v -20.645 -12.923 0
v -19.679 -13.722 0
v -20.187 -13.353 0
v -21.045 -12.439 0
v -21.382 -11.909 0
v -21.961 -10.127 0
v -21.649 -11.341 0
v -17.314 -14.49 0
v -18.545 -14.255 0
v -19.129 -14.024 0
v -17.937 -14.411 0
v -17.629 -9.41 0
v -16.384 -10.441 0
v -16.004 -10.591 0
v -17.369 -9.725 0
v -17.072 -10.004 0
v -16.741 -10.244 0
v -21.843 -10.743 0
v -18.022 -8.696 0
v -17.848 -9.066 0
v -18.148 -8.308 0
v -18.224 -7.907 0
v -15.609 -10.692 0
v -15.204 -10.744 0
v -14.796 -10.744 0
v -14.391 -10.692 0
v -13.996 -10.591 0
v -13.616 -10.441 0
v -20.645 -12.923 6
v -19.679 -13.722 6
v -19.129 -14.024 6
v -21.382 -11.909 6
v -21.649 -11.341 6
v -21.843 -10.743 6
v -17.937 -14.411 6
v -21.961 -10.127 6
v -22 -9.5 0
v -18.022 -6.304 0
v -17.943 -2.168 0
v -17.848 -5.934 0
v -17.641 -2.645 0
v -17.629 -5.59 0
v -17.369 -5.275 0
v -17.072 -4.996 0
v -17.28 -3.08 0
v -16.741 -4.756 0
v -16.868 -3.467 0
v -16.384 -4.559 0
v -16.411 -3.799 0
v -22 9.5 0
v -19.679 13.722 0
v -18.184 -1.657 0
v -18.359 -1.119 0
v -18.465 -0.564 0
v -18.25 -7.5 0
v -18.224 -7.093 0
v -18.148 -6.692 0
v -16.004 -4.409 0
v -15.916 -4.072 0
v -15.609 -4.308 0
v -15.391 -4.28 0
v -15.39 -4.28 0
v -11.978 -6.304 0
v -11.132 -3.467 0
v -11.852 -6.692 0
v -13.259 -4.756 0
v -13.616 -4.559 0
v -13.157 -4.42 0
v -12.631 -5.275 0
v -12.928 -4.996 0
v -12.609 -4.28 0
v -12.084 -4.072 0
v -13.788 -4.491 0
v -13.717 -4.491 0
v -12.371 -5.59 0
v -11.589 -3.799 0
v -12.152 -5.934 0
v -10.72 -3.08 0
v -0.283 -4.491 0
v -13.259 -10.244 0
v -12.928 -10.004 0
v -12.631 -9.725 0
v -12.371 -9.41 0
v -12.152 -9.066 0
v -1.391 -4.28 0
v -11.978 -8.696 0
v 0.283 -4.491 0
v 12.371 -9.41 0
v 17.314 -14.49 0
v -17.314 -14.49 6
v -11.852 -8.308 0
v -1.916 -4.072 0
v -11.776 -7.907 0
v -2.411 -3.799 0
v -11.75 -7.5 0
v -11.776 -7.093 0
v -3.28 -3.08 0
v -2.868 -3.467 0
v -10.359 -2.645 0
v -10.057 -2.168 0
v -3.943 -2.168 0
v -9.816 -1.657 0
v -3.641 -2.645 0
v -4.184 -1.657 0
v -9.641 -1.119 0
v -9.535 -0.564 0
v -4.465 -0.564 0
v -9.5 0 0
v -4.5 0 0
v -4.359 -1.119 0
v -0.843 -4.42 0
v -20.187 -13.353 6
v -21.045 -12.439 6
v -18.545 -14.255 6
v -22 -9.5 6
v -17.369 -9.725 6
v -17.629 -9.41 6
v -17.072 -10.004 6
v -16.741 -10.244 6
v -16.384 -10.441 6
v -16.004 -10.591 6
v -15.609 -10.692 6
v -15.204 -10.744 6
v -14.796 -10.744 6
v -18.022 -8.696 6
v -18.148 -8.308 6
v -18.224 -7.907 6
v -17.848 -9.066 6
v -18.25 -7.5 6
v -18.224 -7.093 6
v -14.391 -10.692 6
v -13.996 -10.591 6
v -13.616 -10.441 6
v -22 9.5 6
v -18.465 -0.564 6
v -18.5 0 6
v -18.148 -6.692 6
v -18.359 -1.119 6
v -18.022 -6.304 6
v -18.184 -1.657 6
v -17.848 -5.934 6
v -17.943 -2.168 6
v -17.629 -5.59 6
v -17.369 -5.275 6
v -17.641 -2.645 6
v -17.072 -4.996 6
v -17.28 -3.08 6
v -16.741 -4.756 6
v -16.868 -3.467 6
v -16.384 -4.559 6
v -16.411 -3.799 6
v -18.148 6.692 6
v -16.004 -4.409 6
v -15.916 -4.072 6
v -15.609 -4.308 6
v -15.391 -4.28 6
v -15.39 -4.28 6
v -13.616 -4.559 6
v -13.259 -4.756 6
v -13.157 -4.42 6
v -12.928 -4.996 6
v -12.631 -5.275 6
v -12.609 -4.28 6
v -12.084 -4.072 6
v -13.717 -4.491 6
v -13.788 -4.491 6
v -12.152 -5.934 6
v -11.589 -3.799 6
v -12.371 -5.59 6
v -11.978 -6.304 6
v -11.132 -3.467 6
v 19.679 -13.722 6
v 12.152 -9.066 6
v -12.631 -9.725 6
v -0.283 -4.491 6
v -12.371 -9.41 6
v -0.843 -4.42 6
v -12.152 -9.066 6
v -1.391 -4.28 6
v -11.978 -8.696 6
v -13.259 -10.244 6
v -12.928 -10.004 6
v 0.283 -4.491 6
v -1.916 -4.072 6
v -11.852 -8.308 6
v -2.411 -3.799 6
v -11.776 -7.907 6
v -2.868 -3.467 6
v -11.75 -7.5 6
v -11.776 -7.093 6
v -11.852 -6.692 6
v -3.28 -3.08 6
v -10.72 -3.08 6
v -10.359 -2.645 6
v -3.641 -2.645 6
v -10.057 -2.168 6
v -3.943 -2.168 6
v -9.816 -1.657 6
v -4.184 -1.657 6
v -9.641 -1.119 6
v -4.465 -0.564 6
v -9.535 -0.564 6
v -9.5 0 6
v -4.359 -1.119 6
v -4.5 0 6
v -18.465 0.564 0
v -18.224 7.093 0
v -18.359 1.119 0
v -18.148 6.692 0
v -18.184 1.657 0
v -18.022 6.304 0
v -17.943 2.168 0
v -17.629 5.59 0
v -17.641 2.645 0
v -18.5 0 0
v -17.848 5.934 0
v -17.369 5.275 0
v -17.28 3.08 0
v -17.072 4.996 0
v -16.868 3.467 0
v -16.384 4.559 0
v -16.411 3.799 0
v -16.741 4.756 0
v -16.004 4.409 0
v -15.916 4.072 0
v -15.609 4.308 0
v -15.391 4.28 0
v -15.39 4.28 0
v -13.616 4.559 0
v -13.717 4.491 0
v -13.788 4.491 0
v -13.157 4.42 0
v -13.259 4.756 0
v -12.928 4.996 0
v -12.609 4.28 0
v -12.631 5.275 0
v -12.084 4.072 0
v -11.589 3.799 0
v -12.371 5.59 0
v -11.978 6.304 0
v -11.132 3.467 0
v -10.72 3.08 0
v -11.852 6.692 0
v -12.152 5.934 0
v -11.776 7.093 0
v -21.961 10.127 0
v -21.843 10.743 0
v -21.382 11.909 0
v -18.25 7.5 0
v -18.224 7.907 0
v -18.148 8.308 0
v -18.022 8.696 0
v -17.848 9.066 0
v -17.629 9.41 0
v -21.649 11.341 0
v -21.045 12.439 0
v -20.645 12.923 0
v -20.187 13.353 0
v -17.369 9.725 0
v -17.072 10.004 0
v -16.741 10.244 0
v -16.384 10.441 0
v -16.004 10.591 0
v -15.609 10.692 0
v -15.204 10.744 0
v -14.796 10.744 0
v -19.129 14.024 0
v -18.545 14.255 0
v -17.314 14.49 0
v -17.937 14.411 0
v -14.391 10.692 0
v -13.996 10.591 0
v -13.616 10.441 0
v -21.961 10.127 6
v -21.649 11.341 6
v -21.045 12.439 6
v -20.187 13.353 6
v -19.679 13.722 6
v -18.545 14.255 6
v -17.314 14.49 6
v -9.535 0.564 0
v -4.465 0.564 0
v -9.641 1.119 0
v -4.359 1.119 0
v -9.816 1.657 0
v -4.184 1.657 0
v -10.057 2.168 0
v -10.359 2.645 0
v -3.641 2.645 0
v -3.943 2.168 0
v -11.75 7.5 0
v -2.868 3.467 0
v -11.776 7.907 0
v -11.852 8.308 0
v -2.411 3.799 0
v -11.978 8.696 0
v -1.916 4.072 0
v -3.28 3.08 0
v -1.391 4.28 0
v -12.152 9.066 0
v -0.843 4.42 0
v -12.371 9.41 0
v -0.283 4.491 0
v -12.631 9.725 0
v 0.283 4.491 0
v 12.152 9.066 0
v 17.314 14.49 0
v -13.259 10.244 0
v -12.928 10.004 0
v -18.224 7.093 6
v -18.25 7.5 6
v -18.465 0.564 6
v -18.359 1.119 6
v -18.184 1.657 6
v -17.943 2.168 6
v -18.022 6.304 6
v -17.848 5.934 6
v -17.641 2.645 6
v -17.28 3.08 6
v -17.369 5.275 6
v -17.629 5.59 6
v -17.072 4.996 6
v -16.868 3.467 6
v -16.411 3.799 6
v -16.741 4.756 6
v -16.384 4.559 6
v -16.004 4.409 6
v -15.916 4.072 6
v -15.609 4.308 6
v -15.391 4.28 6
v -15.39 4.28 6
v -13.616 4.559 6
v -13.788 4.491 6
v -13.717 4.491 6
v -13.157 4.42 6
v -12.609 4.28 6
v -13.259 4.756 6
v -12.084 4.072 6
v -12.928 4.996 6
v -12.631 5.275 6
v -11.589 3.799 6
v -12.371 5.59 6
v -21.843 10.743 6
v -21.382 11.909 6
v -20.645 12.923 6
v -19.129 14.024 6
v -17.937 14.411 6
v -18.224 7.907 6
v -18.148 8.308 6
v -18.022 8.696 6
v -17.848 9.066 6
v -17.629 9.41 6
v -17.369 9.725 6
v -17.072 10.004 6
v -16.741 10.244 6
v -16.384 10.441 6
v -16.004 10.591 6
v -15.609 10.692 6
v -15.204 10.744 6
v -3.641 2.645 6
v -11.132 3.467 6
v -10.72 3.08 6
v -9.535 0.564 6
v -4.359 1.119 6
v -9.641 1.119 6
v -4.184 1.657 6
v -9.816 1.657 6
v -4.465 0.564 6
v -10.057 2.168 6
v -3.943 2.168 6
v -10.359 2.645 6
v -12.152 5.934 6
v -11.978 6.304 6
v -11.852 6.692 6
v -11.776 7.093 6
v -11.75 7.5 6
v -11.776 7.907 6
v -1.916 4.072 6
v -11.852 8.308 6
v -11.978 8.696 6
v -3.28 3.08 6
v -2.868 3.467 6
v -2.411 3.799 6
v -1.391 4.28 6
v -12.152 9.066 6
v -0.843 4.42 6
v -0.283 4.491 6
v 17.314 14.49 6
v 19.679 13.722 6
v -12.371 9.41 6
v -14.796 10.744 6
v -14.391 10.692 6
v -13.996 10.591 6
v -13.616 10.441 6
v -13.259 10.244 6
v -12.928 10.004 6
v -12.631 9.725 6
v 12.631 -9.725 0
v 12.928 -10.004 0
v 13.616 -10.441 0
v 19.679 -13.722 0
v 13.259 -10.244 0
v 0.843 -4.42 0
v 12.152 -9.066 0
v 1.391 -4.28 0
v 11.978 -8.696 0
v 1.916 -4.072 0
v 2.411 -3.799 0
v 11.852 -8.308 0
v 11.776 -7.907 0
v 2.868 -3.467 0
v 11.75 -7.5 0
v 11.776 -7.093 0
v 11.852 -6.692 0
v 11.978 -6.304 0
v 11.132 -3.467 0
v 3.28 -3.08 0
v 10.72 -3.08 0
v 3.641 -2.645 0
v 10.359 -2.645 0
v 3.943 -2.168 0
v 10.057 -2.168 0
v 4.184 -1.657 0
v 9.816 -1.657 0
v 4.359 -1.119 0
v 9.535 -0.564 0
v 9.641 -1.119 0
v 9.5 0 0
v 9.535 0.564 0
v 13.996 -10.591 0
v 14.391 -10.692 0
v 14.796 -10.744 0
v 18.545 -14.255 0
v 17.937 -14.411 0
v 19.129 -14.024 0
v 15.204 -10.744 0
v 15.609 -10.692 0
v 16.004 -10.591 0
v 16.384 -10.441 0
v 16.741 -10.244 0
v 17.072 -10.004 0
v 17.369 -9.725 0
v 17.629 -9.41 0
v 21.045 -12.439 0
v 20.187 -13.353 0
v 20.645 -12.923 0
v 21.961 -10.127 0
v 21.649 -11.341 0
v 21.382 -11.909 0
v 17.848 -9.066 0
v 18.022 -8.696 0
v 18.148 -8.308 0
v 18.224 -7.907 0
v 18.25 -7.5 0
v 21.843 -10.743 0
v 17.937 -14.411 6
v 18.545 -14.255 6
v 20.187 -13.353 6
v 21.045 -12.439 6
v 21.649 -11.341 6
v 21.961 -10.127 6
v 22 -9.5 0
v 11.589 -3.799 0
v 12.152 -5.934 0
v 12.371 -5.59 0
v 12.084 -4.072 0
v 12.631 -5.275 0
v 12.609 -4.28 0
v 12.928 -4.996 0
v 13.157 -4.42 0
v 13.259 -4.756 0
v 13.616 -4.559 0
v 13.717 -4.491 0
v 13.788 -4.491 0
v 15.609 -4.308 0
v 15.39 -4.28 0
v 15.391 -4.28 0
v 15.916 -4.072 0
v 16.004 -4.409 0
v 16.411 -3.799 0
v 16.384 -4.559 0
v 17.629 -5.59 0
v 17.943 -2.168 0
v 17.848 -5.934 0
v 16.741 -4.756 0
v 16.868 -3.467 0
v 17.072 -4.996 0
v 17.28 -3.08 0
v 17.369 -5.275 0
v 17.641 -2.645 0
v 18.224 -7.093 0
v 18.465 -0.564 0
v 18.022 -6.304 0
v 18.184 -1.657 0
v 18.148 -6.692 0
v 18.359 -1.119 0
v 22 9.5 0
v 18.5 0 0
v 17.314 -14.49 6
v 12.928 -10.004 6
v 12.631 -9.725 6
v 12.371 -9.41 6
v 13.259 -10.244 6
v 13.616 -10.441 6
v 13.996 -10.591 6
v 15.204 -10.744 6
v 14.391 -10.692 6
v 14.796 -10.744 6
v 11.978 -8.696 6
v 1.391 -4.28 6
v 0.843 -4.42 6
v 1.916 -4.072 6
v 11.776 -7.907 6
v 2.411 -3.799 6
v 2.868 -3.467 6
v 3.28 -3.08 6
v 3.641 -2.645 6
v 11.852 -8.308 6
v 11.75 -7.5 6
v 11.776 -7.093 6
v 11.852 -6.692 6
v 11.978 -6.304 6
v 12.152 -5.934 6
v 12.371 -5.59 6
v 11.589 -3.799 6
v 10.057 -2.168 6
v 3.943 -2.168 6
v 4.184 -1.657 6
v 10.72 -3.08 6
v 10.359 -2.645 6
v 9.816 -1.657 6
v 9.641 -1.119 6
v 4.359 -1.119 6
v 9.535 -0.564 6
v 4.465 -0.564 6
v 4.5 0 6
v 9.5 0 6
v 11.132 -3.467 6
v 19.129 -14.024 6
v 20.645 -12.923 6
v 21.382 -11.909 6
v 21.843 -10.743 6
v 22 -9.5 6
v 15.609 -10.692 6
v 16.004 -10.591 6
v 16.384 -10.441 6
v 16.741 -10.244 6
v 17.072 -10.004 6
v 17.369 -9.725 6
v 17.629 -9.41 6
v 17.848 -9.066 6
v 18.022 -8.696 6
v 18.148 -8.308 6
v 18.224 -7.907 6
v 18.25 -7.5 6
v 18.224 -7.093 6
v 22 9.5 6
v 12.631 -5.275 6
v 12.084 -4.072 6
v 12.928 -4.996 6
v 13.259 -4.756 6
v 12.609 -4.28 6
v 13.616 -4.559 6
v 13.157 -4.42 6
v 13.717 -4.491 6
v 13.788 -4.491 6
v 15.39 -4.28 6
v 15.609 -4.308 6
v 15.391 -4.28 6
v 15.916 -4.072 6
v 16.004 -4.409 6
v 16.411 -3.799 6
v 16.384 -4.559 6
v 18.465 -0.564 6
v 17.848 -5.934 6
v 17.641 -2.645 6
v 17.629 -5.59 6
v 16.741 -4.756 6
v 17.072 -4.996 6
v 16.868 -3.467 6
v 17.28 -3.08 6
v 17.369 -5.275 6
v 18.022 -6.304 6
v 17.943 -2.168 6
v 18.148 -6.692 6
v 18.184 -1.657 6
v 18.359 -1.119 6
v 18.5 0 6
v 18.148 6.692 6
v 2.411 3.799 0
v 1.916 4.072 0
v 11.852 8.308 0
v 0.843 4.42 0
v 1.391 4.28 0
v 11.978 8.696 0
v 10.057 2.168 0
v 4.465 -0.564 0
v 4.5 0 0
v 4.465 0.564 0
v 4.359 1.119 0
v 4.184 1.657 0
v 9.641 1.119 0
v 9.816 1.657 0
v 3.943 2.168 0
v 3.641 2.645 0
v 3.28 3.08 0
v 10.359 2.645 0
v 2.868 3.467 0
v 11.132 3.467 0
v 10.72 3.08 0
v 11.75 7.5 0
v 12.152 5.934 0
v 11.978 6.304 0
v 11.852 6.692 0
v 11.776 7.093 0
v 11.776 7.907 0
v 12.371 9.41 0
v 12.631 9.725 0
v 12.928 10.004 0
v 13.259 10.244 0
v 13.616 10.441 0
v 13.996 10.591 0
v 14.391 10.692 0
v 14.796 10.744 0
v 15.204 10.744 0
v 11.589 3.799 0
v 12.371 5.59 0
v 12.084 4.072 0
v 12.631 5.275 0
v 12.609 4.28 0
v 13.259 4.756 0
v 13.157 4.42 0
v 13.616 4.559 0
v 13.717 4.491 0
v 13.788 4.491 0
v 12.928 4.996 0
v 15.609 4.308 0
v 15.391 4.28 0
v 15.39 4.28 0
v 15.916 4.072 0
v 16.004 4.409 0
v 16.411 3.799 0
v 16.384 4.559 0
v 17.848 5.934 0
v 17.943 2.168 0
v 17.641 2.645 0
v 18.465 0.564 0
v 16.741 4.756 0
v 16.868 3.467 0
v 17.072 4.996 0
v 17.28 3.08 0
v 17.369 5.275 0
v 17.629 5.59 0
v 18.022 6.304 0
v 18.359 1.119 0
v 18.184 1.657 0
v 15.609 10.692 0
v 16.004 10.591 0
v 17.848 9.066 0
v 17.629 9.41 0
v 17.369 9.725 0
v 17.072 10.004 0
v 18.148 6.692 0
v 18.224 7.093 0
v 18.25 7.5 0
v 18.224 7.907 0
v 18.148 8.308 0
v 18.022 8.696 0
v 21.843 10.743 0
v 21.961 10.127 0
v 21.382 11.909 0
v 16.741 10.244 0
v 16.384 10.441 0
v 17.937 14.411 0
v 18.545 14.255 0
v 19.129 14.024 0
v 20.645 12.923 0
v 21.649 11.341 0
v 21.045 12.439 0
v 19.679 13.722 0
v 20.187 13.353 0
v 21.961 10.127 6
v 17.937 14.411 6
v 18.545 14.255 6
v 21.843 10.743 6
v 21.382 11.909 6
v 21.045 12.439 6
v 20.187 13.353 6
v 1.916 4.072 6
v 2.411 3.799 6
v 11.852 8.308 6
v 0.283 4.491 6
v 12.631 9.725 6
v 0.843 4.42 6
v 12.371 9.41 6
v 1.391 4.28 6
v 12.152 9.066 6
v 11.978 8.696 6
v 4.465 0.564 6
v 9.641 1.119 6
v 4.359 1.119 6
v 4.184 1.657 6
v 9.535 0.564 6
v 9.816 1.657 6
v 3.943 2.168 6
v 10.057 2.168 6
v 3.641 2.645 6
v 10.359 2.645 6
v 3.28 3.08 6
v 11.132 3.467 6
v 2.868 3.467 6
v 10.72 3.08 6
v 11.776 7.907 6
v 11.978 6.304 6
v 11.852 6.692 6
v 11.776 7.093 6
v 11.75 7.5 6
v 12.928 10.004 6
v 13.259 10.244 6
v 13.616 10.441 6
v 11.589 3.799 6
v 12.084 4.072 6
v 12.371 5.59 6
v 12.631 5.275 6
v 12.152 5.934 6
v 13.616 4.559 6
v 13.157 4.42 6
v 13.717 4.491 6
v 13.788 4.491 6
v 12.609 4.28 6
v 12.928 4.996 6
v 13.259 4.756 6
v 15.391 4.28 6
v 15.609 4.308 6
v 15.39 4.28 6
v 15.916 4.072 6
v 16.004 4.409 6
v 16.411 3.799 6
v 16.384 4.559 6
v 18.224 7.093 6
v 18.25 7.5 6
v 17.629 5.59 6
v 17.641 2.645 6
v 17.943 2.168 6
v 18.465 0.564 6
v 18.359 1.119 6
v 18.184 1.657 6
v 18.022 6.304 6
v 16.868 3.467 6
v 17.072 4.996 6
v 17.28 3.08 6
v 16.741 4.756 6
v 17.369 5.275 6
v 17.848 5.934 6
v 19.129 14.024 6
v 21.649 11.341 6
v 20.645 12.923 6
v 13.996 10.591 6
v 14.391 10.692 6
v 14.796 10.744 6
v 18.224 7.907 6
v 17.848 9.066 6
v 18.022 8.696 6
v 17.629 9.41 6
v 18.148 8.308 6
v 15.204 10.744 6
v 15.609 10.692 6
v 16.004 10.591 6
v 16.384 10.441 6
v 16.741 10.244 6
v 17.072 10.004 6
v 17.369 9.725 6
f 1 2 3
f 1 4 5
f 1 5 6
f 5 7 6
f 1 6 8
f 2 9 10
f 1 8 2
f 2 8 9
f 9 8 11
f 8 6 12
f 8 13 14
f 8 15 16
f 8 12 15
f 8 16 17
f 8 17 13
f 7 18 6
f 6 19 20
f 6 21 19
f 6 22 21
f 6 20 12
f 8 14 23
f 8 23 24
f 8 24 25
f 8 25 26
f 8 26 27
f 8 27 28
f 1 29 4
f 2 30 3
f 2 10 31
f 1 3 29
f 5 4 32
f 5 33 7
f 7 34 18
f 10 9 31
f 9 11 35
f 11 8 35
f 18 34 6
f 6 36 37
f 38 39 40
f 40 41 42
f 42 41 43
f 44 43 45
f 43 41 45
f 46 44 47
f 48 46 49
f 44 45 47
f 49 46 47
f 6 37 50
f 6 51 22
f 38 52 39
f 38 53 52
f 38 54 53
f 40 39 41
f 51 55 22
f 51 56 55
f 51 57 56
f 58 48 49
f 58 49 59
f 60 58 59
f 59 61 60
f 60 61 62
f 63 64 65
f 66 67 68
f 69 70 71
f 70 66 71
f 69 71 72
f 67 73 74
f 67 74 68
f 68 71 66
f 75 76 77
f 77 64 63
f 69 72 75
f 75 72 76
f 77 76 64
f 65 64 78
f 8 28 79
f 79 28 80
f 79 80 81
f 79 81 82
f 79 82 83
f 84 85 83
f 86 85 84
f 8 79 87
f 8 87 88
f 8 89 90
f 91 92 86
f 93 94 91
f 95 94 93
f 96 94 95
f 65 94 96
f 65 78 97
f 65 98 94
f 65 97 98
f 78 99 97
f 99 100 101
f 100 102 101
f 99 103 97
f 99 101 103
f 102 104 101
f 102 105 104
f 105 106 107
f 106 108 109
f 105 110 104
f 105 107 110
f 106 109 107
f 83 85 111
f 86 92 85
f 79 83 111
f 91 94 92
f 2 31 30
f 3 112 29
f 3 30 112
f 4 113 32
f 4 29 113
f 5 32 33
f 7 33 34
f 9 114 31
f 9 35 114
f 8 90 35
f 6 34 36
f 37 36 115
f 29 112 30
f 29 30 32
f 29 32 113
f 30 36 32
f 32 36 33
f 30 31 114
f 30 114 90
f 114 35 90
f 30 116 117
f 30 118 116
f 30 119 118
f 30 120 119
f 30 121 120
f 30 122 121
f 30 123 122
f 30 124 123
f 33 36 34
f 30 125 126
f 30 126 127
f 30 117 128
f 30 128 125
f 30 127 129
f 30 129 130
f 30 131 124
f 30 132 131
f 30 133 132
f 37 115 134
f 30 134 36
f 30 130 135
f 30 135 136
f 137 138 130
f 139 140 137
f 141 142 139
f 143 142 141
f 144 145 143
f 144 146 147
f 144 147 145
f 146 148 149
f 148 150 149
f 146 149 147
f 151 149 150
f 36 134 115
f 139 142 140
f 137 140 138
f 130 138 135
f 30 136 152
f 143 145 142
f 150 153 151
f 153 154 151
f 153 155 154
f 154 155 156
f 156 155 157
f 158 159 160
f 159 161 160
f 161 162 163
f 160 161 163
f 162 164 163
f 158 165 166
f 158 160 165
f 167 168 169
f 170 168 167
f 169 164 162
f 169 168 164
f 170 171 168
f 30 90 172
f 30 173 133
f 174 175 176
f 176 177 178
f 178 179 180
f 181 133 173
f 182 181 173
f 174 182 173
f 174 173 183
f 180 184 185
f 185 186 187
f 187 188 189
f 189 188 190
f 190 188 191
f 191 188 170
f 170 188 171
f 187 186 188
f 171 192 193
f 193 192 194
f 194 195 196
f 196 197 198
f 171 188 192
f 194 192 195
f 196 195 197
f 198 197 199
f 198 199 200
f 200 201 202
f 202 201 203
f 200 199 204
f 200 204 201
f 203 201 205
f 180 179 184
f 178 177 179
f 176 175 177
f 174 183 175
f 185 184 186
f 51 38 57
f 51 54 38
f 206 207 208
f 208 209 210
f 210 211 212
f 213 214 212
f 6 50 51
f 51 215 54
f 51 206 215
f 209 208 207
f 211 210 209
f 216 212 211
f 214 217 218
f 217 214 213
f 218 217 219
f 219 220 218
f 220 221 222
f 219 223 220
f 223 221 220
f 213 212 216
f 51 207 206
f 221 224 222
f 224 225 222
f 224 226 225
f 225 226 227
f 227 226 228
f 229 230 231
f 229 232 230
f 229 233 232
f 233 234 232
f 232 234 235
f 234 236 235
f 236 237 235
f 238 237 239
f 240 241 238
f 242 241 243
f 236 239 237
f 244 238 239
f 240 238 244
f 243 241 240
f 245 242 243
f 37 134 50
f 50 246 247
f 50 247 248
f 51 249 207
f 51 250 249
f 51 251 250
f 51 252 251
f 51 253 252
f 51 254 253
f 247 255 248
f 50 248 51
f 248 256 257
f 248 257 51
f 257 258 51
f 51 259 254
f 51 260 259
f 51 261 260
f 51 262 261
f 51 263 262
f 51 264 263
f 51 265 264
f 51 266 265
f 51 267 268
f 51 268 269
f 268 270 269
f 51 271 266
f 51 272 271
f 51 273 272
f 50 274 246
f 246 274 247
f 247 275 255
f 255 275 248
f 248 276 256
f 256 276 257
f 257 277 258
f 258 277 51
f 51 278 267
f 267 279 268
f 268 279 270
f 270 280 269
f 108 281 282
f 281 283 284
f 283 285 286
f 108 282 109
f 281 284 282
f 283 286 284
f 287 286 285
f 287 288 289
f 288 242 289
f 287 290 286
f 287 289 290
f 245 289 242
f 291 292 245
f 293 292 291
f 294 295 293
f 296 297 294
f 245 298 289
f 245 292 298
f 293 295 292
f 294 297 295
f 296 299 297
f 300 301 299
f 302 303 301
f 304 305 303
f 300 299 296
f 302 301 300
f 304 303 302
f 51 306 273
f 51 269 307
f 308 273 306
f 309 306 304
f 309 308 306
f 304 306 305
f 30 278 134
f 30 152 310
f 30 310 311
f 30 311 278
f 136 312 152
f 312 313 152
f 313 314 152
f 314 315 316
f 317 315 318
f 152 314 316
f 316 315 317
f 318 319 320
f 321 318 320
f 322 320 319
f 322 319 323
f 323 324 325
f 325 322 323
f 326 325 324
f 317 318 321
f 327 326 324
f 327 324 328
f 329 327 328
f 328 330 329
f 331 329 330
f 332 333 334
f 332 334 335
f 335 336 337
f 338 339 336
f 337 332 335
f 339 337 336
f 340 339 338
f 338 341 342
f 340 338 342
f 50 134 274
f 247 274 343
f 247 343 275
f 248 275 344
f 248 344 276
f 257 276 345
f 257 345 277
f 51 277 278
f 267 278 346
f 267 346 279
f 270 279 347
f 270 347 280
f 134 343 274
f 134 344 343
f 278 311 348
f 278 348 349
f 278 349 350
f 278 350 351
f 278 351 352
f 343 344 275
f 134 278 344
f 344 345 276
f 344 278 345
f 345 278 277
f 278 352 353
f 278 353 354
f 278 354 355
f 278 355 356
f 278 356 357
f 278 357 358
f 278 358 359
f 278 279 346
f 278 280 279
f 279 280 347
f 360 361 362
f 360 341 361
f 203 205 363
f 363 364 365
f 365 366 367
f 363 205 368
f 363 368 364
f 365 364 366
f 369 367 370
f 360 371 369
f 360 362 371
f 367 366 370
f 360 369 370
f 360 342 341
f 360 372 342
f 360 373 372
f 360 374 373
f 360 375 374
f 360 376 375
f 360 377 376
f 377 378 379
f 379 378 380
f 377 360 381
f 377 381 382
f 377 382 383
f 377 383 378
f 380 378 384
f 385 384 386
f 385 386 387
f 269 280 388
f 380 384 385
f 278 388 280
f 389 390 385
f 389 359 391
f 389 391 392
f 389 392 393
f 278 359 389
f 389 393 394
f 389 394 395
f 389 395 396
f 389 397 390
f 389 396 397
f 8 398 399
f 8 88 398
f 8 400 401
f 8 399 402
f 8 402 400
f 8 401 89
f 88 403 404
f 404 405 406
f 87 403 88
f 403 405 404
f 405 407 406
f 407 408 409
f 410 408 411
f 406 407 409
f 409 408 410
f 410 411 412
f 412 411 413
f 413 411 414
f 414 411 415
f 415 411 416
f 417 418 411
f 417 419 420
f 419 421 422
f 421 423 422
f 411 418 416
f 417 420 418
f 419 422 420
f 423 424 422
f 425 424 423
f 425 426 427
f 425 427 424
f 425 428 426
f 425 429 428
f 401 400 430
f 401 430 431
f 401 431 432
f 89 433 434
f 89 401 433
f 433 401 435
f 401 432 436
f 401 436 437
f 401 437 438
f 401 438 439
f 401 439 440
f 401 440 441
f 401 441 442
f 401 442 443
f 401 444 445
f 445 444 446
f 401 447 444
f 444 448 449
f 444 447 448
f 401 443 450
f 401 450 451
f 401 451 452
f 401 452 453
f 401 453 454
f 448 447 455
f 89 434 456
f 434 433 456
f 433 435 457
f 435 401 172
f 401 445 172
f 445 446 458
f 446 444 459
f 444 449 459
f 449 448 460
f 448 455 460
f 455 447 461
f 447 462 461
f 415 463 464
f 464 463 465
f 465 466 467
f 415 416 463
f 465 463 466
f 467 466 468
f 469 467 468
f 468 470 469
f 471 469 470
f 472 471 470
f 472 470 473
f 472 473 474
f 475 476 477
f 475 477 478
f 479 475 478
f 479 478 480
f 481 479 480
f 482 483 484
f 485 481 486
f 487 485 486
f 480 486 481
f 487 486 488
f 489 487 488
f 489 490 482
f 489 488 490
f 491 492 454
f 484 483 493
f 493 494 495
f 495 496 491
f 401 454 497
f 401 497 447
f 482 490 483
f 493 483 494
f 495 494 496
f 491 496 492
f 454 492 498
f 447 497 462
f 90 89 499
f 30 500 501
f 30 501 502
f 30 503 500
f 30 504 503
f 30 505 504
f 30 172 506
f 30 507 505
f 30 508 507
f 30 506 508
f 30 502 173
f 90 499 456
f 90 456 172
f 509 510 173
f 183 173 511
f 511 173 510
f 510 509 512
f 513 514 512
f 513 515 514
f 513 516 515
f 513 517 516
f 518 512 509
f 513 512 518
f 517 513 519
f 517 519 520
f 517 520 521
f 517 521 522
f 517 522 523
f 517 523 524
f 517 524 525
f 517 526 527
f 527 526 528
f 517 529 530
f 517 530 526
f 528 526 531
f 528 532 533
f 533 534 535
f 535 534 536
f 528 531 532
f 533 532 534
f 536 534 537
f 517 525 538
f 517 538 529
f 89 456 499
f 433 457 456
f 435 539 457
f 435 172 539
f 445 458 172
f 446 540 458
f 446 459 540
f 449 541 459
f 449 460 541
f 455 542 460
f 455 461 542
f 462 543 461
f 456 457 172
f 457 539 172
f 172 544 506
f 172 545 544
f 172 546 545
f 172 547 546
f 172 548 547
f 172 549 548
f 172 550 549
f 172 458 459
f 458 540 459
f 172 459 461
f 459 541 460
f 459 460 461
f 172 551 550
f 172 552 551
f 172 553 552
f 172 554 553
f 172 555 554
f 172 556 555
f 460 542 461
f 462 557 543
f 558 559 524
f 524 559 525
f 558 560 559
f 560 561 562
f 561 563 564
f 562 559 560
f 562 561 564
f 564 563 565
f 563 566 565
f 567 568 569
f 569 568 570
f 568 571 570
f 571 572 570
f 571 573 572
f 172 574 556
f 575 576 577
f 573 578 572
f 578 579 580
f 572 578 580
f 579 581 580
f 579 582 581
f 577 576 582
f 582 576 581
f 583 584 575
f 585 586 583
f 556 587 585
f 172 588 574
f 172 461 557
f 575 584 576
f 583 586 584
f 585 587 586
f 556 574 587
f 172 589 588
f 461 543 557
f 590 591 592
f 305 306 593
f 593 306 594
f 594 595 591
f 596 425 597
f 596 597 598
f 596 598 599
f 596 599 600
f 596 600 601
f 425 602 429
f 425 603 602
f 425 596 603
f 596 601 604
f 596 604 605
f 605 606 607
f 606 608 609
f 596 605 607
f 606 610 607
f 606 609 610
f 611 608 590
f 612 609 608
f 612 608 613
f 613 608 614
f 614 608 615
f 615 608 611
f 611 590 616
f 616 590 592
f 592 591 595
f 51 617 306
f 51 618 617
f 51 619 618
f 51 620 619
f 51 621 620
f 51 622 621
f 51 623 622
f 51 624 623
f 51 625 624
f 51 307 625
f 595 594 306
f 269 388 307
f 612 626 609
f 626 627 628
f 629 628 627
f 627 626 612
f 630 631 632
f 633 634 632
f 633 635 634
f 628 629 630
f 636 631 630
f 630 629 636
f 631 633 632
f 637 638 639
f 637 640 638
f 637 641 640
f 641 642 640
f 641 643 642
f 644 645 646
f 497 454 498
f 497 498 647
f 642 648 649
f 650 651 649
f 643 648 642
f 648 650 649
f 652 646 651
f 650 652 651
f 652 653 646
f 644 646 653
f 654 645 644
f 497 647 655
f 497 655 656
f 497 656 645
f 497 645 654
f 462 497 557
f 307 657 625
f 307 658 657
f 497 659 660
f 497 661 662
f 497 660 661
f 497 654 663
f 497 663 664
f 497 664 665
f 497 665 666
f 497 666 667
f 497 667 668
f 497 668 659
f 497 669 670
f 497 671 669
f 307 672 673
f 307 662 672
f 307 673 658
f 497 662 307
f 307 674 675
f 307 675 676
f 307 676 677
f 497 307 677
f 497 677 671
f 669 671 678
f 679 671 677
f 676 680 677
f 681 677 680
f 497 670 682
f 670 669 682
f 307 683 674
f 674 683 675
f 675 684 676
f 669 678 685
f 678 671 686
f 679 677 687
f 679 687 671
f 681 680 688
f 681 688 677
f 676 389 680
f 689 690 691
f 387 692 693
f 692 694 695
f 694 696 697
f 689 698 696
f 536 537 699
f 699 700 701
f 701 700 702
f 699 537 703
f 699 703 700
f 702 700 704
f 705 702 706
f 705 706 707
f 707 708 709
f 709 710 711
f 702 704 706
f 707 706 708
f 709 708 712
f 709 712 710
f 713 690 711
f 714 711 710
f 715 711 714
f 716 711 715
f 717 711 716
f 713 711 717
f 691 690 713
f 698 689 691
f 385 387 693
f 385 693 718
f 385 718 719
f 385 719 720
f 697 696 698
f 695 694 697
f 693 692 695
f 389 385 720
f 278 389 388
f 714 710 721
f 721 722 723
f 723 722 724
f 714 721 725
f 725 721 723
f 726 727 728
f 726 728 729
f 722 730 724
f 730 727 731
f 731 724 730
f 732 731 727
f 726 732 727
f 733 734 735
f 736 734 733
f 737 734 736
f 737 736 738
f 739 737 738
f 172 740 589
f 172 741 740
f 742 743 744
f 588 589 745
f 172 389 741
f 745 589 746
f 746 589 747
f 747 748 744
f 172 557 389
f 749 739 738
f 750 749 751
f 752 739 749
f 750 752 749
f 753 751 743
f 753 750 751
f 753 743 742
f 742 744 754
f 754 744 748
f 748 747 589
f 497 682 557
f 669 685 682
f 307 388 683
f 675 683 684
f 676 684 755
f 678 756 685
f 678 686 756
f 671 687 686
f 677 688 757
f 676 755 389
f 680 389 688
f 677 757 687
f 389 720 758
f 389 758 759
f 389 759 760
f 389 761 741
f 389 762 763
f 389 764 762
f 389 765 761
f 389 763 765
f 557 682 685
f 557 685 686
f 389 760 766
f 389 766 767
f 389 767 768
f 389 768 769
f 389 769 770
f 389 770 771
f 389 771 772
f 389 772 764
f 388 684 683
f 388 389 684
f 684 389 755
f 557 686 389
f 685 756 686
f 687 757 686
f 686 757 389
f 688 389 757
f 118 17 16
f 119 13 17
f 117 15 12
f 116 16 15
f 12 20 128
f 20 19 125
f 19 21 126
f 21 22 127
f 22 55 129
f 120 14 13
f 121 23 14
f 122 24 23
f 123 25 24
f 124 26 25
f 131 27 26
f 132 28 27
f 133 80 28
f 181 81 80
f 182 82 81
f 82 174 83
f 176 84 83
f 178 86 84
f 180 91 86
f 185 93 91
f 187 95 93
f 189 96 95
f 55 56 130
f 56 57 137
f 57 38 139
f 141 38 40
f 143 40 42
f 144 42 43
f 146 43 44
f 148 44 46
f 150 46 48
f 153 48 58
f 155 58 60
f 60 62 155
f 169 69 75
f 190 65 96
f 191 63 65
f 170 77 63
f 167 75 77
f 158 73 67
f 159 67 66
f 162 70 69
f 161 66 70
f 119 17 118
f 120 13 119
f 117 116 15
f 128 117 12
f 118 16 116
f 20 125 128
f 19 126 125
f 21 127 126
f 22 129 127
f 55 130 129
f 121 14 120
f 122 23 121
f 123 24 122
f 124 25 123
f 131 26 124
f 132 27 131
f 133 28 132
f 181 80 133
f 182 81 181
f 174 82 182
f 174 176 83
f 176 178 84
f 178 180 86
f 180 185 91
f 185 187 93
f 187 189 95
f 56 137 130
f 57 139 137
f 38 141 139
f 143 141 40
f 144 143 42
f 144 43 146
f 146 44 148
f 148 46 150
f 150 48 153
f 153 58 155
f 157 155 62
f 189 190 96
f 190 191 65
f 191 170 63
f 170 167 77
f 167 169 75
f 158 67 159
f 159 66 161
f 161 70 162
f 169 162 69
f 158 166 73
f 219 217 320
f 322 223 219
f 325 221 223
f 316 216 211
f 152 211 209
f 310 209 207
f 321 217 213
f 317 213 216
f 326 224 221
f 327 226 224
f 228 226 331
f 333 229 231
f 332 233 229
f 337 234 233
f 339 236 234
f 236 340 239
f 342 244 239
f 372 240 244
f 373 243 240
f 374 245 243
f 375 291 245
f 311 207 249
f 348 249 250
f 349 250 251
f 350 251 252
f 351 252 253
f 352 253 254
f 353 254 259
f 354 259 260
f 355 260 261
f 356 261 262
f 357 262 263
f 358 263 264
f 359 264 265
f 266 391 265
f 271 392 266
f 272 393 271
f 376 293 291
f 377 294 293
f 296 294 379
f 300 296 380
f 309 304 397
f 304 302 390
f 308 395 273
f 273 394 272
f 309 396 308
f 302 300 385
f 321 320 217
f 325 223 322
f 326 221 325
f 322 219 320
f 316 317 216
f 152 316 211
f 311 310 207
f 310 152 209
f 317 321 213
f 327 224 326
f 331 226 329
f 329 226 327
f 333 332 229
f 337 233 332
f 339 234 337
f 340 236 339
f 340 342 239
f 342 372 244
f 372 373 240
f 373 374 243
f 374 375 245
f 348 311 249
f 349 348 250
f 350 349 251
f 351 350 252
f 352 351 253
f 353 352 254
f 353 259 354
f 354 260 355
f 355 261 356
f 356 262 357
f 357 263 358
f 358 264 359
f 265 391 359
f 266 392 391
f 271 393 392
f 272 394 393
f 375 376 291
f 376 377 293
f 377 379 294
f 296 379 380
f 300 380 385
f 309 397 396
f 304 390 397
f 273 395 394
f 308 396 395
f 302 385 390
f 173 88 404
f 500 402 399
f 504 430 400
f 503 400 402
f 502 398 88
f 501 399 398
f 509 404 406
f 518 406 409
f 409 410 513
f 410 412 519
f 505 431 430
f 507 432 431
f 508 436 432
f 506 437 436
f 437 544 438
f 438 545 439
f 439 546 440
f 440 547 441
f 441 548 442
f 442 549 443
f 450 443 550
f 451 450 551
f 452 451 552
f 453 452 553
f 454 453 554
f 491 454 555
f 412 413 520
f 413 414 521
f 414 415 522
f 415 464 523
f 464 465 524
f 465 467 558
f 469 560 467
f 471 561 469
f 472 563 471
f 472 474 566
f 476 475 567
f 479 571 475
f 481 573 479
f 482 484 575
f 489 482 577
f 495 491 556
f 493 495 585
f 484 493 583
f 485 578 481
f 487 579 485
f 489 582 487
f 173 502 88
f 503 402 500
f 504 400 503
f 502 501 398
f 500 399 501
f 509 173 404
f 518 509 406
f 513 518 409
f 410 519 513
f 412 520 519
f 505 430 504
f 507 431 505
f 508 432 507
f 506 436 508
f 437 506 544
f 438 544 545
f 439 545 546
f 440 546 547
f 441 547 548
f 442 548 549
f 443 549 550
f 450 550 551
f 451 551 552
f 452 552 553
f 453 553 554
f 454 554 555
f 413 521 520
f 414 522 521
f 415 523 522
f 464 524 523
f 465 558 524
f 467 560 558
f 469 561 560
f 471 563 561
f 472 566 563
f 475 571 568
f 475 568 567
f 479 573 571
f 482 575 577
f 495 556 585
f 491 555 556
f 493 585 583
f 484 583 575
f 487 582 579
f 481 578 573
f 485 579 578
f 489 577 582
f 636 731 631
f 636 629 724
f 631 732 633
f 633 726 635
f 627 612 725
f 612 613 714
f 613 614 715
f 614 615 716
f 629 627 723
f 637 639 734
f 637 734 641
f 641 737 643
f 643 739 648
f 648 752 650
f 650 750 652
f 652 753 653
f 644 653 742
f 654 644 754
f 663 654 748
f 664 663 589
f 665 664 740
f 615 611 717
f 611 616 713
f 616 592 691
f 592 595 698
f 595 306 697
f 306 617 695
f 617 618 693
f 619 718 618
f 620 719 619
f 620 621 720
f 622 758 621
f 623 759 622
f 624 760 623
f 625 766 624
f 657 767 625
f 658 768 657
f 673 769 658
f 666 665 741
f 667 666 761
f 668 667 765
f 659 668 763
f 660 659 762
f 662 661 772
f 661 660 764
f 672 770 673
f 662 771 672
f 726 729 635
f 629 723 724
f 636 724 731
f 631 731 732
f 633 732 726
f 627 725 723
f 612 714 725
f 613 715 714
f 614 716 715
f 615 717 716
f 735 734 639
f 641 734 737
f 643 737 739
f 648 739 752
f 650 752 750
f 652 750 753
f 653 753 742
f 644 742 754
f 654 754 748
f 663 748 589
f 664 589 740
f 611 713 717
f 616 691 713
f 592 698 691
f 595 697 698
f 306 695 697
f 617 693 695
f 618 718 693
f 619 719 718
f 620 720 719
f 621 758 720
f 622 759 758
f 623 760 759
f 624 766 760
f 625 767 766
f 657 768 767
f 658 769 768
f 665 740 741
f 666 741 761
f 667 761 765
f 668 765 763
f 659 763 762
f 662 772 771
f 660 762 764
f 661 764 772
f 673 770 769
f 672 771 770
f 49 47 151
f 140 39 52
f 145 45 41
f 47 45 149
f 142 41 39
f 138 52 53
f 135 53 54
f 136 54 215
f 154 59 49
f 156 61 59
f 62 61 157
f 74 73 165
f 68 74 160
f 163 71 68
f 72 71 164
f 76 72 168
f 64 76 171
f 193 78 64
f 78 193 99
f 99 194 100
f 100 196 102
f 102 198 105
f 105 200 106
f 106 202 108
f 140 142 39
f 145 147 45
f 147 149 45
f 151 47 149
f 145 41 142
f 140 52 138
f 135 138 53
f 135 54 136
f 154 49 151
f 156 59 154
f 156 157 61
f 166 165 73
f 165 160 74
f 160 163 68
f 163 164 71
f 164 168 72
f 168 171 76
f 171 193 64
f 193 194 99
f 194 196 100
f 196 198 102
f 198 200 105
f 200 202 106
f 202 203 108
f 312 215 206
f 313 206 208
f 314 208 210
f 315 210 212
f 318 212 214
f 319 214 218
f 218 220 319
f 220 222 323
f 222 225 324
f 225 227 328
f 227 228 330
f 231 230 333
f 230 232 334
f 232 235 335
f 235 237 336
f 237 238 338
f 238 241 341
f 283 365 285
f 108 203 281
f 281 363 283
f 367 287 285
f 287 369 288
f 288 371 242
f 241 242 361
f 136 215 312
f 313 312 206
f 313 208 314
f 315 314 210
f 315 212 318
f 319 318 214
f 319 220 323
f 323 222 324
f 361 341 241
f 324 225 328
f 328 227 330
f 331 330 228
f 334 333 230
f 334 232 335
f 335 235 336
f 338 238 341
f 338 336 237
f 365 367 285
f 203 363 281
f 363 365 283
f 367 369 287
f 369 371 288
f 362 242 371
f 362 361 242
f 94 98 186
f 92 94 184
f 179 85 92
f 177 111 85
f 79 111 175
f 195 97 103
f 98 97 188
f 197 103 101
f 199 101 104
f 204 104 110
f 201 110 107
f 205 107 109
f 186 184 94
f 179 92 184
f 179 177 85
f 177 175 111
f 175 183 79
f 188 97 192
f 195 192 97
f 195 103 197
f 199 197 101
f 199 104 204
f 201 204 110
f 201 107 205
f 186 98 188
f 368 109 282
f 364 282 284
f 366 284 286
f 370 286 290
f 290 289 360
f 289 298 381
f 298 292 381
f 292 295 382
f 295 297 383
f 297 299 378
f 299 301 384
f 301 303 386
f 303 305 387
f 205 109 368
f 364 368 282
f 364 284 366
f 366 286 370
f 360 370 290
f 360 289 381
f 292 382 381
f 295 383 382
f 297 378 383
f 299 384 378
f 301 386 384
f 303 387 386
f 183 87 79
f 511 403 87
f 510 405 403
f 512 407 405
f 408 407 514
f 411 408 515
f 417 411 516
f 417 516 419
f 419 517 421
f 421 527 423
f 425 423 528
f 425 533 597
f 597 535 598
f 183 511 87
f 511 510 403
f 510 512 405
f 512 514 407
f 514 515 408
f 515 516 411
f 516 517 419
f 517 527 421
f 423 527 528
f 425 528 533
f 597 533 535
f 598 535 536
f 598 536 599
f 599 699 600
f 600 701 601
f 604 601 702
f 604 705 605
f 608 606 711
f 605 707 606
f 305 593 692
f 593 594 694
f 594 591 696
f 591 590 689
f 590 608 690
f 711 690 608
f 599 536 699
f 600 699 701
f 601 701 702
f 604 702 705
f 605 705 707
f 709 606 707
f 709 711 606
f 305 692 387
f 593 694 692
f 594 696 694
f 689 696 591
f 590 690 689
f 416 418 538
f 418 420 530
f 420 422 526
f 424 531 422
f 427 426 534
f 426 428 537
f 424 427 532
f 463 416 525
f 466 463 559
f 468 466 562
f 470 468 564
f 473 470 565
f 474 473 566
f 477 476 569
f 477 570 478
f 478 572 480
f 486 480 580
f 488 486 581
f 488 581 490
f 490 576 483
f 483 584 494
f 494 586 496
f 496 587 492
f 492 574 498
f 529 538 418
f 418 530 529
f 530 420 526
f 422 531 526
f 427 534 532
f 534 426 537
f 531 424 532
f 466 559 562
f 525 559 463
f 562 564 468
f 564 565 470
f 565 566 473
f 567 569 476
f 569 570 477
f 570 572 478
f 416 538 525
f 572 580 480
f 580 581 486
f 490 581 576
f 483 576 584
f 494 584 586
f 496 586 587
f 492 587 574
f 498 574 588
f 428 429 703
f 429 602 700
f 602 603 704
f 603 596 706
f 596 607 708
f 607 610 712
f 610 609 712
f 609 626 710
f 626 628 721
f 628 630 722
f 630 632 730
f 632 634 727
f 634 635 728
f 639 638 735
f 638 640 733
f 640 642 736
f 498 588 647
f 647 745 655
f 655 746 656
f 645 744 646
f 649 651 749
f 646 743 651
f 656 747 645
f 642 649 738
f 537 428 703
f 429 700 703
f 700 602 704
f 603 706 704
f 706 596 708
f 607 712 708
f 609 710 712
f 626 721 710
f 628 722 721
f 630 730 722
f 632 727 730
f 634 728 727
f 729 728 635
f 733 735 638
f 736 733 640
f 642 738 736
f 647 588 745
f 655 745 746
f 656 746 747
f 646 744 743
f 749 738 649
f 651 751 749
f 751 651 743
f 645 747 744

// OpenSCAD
$fn = 50;

difference() {
	union() {
		hull() {
			translate(v = [-17.0, 9.5, 0]) {
				cylinder(h = 6, r = 5);
			}
			translate(v = [17.0, 9.5, 0]) {
				cylinder(h = 6, r = 5);
			}
			translate(v = [-17.0, -9.5, 0]) {
				cylinder(h = 6, r = 5);
			}
			translate(v = [17.0, -9.5, 0]) {
				cylinder(h = 6, r = 5);
			}
		}
	}
	union() {
		translate(v = [-15.0, -7.5, -100.0]) {
			cylinder(h = 200, r = 3.25);
		}
		translate(v = [-15.0, 7.5, -100.0]) {
			cylinder(h = 200, r = 3.25);
		}
		translate(v = [15.0, -7.5, -100.0]) {
			cylinder(h = 200, r = 3.25);
		}
		translate(v = [15.0, 7.5, -100.0]) {
			cylinder(h = 200, r = 3.25);
		}
		translate(v = [-15.0, -7.5, -100.0]) {
			cylinder(h = 200, r = 1.8);
		}
		translate(v = [-15.0, 7.5, -100.0]) {
			cylinder(h = 200, r = 1.8);
		}
		translate(v = [15.0, -7.5, -100.0]) {
			cylinder(h = 200, r = 1.8);
		}
		translate(v = [15.0, 7.5, -100.0]) {
			cylinder(h = 200, r = 1.8);
		}
		translate(v = [-14.0, 0, 0.0]) {
			cylinder(h = 6, r = 4.5);
		}
		cylinder(h = 6, r = 4.5);
		translate(v = [14.0, 0, 0.0]) {
			cylinder(h = 6, r = 4.5);
		}
	}
}
